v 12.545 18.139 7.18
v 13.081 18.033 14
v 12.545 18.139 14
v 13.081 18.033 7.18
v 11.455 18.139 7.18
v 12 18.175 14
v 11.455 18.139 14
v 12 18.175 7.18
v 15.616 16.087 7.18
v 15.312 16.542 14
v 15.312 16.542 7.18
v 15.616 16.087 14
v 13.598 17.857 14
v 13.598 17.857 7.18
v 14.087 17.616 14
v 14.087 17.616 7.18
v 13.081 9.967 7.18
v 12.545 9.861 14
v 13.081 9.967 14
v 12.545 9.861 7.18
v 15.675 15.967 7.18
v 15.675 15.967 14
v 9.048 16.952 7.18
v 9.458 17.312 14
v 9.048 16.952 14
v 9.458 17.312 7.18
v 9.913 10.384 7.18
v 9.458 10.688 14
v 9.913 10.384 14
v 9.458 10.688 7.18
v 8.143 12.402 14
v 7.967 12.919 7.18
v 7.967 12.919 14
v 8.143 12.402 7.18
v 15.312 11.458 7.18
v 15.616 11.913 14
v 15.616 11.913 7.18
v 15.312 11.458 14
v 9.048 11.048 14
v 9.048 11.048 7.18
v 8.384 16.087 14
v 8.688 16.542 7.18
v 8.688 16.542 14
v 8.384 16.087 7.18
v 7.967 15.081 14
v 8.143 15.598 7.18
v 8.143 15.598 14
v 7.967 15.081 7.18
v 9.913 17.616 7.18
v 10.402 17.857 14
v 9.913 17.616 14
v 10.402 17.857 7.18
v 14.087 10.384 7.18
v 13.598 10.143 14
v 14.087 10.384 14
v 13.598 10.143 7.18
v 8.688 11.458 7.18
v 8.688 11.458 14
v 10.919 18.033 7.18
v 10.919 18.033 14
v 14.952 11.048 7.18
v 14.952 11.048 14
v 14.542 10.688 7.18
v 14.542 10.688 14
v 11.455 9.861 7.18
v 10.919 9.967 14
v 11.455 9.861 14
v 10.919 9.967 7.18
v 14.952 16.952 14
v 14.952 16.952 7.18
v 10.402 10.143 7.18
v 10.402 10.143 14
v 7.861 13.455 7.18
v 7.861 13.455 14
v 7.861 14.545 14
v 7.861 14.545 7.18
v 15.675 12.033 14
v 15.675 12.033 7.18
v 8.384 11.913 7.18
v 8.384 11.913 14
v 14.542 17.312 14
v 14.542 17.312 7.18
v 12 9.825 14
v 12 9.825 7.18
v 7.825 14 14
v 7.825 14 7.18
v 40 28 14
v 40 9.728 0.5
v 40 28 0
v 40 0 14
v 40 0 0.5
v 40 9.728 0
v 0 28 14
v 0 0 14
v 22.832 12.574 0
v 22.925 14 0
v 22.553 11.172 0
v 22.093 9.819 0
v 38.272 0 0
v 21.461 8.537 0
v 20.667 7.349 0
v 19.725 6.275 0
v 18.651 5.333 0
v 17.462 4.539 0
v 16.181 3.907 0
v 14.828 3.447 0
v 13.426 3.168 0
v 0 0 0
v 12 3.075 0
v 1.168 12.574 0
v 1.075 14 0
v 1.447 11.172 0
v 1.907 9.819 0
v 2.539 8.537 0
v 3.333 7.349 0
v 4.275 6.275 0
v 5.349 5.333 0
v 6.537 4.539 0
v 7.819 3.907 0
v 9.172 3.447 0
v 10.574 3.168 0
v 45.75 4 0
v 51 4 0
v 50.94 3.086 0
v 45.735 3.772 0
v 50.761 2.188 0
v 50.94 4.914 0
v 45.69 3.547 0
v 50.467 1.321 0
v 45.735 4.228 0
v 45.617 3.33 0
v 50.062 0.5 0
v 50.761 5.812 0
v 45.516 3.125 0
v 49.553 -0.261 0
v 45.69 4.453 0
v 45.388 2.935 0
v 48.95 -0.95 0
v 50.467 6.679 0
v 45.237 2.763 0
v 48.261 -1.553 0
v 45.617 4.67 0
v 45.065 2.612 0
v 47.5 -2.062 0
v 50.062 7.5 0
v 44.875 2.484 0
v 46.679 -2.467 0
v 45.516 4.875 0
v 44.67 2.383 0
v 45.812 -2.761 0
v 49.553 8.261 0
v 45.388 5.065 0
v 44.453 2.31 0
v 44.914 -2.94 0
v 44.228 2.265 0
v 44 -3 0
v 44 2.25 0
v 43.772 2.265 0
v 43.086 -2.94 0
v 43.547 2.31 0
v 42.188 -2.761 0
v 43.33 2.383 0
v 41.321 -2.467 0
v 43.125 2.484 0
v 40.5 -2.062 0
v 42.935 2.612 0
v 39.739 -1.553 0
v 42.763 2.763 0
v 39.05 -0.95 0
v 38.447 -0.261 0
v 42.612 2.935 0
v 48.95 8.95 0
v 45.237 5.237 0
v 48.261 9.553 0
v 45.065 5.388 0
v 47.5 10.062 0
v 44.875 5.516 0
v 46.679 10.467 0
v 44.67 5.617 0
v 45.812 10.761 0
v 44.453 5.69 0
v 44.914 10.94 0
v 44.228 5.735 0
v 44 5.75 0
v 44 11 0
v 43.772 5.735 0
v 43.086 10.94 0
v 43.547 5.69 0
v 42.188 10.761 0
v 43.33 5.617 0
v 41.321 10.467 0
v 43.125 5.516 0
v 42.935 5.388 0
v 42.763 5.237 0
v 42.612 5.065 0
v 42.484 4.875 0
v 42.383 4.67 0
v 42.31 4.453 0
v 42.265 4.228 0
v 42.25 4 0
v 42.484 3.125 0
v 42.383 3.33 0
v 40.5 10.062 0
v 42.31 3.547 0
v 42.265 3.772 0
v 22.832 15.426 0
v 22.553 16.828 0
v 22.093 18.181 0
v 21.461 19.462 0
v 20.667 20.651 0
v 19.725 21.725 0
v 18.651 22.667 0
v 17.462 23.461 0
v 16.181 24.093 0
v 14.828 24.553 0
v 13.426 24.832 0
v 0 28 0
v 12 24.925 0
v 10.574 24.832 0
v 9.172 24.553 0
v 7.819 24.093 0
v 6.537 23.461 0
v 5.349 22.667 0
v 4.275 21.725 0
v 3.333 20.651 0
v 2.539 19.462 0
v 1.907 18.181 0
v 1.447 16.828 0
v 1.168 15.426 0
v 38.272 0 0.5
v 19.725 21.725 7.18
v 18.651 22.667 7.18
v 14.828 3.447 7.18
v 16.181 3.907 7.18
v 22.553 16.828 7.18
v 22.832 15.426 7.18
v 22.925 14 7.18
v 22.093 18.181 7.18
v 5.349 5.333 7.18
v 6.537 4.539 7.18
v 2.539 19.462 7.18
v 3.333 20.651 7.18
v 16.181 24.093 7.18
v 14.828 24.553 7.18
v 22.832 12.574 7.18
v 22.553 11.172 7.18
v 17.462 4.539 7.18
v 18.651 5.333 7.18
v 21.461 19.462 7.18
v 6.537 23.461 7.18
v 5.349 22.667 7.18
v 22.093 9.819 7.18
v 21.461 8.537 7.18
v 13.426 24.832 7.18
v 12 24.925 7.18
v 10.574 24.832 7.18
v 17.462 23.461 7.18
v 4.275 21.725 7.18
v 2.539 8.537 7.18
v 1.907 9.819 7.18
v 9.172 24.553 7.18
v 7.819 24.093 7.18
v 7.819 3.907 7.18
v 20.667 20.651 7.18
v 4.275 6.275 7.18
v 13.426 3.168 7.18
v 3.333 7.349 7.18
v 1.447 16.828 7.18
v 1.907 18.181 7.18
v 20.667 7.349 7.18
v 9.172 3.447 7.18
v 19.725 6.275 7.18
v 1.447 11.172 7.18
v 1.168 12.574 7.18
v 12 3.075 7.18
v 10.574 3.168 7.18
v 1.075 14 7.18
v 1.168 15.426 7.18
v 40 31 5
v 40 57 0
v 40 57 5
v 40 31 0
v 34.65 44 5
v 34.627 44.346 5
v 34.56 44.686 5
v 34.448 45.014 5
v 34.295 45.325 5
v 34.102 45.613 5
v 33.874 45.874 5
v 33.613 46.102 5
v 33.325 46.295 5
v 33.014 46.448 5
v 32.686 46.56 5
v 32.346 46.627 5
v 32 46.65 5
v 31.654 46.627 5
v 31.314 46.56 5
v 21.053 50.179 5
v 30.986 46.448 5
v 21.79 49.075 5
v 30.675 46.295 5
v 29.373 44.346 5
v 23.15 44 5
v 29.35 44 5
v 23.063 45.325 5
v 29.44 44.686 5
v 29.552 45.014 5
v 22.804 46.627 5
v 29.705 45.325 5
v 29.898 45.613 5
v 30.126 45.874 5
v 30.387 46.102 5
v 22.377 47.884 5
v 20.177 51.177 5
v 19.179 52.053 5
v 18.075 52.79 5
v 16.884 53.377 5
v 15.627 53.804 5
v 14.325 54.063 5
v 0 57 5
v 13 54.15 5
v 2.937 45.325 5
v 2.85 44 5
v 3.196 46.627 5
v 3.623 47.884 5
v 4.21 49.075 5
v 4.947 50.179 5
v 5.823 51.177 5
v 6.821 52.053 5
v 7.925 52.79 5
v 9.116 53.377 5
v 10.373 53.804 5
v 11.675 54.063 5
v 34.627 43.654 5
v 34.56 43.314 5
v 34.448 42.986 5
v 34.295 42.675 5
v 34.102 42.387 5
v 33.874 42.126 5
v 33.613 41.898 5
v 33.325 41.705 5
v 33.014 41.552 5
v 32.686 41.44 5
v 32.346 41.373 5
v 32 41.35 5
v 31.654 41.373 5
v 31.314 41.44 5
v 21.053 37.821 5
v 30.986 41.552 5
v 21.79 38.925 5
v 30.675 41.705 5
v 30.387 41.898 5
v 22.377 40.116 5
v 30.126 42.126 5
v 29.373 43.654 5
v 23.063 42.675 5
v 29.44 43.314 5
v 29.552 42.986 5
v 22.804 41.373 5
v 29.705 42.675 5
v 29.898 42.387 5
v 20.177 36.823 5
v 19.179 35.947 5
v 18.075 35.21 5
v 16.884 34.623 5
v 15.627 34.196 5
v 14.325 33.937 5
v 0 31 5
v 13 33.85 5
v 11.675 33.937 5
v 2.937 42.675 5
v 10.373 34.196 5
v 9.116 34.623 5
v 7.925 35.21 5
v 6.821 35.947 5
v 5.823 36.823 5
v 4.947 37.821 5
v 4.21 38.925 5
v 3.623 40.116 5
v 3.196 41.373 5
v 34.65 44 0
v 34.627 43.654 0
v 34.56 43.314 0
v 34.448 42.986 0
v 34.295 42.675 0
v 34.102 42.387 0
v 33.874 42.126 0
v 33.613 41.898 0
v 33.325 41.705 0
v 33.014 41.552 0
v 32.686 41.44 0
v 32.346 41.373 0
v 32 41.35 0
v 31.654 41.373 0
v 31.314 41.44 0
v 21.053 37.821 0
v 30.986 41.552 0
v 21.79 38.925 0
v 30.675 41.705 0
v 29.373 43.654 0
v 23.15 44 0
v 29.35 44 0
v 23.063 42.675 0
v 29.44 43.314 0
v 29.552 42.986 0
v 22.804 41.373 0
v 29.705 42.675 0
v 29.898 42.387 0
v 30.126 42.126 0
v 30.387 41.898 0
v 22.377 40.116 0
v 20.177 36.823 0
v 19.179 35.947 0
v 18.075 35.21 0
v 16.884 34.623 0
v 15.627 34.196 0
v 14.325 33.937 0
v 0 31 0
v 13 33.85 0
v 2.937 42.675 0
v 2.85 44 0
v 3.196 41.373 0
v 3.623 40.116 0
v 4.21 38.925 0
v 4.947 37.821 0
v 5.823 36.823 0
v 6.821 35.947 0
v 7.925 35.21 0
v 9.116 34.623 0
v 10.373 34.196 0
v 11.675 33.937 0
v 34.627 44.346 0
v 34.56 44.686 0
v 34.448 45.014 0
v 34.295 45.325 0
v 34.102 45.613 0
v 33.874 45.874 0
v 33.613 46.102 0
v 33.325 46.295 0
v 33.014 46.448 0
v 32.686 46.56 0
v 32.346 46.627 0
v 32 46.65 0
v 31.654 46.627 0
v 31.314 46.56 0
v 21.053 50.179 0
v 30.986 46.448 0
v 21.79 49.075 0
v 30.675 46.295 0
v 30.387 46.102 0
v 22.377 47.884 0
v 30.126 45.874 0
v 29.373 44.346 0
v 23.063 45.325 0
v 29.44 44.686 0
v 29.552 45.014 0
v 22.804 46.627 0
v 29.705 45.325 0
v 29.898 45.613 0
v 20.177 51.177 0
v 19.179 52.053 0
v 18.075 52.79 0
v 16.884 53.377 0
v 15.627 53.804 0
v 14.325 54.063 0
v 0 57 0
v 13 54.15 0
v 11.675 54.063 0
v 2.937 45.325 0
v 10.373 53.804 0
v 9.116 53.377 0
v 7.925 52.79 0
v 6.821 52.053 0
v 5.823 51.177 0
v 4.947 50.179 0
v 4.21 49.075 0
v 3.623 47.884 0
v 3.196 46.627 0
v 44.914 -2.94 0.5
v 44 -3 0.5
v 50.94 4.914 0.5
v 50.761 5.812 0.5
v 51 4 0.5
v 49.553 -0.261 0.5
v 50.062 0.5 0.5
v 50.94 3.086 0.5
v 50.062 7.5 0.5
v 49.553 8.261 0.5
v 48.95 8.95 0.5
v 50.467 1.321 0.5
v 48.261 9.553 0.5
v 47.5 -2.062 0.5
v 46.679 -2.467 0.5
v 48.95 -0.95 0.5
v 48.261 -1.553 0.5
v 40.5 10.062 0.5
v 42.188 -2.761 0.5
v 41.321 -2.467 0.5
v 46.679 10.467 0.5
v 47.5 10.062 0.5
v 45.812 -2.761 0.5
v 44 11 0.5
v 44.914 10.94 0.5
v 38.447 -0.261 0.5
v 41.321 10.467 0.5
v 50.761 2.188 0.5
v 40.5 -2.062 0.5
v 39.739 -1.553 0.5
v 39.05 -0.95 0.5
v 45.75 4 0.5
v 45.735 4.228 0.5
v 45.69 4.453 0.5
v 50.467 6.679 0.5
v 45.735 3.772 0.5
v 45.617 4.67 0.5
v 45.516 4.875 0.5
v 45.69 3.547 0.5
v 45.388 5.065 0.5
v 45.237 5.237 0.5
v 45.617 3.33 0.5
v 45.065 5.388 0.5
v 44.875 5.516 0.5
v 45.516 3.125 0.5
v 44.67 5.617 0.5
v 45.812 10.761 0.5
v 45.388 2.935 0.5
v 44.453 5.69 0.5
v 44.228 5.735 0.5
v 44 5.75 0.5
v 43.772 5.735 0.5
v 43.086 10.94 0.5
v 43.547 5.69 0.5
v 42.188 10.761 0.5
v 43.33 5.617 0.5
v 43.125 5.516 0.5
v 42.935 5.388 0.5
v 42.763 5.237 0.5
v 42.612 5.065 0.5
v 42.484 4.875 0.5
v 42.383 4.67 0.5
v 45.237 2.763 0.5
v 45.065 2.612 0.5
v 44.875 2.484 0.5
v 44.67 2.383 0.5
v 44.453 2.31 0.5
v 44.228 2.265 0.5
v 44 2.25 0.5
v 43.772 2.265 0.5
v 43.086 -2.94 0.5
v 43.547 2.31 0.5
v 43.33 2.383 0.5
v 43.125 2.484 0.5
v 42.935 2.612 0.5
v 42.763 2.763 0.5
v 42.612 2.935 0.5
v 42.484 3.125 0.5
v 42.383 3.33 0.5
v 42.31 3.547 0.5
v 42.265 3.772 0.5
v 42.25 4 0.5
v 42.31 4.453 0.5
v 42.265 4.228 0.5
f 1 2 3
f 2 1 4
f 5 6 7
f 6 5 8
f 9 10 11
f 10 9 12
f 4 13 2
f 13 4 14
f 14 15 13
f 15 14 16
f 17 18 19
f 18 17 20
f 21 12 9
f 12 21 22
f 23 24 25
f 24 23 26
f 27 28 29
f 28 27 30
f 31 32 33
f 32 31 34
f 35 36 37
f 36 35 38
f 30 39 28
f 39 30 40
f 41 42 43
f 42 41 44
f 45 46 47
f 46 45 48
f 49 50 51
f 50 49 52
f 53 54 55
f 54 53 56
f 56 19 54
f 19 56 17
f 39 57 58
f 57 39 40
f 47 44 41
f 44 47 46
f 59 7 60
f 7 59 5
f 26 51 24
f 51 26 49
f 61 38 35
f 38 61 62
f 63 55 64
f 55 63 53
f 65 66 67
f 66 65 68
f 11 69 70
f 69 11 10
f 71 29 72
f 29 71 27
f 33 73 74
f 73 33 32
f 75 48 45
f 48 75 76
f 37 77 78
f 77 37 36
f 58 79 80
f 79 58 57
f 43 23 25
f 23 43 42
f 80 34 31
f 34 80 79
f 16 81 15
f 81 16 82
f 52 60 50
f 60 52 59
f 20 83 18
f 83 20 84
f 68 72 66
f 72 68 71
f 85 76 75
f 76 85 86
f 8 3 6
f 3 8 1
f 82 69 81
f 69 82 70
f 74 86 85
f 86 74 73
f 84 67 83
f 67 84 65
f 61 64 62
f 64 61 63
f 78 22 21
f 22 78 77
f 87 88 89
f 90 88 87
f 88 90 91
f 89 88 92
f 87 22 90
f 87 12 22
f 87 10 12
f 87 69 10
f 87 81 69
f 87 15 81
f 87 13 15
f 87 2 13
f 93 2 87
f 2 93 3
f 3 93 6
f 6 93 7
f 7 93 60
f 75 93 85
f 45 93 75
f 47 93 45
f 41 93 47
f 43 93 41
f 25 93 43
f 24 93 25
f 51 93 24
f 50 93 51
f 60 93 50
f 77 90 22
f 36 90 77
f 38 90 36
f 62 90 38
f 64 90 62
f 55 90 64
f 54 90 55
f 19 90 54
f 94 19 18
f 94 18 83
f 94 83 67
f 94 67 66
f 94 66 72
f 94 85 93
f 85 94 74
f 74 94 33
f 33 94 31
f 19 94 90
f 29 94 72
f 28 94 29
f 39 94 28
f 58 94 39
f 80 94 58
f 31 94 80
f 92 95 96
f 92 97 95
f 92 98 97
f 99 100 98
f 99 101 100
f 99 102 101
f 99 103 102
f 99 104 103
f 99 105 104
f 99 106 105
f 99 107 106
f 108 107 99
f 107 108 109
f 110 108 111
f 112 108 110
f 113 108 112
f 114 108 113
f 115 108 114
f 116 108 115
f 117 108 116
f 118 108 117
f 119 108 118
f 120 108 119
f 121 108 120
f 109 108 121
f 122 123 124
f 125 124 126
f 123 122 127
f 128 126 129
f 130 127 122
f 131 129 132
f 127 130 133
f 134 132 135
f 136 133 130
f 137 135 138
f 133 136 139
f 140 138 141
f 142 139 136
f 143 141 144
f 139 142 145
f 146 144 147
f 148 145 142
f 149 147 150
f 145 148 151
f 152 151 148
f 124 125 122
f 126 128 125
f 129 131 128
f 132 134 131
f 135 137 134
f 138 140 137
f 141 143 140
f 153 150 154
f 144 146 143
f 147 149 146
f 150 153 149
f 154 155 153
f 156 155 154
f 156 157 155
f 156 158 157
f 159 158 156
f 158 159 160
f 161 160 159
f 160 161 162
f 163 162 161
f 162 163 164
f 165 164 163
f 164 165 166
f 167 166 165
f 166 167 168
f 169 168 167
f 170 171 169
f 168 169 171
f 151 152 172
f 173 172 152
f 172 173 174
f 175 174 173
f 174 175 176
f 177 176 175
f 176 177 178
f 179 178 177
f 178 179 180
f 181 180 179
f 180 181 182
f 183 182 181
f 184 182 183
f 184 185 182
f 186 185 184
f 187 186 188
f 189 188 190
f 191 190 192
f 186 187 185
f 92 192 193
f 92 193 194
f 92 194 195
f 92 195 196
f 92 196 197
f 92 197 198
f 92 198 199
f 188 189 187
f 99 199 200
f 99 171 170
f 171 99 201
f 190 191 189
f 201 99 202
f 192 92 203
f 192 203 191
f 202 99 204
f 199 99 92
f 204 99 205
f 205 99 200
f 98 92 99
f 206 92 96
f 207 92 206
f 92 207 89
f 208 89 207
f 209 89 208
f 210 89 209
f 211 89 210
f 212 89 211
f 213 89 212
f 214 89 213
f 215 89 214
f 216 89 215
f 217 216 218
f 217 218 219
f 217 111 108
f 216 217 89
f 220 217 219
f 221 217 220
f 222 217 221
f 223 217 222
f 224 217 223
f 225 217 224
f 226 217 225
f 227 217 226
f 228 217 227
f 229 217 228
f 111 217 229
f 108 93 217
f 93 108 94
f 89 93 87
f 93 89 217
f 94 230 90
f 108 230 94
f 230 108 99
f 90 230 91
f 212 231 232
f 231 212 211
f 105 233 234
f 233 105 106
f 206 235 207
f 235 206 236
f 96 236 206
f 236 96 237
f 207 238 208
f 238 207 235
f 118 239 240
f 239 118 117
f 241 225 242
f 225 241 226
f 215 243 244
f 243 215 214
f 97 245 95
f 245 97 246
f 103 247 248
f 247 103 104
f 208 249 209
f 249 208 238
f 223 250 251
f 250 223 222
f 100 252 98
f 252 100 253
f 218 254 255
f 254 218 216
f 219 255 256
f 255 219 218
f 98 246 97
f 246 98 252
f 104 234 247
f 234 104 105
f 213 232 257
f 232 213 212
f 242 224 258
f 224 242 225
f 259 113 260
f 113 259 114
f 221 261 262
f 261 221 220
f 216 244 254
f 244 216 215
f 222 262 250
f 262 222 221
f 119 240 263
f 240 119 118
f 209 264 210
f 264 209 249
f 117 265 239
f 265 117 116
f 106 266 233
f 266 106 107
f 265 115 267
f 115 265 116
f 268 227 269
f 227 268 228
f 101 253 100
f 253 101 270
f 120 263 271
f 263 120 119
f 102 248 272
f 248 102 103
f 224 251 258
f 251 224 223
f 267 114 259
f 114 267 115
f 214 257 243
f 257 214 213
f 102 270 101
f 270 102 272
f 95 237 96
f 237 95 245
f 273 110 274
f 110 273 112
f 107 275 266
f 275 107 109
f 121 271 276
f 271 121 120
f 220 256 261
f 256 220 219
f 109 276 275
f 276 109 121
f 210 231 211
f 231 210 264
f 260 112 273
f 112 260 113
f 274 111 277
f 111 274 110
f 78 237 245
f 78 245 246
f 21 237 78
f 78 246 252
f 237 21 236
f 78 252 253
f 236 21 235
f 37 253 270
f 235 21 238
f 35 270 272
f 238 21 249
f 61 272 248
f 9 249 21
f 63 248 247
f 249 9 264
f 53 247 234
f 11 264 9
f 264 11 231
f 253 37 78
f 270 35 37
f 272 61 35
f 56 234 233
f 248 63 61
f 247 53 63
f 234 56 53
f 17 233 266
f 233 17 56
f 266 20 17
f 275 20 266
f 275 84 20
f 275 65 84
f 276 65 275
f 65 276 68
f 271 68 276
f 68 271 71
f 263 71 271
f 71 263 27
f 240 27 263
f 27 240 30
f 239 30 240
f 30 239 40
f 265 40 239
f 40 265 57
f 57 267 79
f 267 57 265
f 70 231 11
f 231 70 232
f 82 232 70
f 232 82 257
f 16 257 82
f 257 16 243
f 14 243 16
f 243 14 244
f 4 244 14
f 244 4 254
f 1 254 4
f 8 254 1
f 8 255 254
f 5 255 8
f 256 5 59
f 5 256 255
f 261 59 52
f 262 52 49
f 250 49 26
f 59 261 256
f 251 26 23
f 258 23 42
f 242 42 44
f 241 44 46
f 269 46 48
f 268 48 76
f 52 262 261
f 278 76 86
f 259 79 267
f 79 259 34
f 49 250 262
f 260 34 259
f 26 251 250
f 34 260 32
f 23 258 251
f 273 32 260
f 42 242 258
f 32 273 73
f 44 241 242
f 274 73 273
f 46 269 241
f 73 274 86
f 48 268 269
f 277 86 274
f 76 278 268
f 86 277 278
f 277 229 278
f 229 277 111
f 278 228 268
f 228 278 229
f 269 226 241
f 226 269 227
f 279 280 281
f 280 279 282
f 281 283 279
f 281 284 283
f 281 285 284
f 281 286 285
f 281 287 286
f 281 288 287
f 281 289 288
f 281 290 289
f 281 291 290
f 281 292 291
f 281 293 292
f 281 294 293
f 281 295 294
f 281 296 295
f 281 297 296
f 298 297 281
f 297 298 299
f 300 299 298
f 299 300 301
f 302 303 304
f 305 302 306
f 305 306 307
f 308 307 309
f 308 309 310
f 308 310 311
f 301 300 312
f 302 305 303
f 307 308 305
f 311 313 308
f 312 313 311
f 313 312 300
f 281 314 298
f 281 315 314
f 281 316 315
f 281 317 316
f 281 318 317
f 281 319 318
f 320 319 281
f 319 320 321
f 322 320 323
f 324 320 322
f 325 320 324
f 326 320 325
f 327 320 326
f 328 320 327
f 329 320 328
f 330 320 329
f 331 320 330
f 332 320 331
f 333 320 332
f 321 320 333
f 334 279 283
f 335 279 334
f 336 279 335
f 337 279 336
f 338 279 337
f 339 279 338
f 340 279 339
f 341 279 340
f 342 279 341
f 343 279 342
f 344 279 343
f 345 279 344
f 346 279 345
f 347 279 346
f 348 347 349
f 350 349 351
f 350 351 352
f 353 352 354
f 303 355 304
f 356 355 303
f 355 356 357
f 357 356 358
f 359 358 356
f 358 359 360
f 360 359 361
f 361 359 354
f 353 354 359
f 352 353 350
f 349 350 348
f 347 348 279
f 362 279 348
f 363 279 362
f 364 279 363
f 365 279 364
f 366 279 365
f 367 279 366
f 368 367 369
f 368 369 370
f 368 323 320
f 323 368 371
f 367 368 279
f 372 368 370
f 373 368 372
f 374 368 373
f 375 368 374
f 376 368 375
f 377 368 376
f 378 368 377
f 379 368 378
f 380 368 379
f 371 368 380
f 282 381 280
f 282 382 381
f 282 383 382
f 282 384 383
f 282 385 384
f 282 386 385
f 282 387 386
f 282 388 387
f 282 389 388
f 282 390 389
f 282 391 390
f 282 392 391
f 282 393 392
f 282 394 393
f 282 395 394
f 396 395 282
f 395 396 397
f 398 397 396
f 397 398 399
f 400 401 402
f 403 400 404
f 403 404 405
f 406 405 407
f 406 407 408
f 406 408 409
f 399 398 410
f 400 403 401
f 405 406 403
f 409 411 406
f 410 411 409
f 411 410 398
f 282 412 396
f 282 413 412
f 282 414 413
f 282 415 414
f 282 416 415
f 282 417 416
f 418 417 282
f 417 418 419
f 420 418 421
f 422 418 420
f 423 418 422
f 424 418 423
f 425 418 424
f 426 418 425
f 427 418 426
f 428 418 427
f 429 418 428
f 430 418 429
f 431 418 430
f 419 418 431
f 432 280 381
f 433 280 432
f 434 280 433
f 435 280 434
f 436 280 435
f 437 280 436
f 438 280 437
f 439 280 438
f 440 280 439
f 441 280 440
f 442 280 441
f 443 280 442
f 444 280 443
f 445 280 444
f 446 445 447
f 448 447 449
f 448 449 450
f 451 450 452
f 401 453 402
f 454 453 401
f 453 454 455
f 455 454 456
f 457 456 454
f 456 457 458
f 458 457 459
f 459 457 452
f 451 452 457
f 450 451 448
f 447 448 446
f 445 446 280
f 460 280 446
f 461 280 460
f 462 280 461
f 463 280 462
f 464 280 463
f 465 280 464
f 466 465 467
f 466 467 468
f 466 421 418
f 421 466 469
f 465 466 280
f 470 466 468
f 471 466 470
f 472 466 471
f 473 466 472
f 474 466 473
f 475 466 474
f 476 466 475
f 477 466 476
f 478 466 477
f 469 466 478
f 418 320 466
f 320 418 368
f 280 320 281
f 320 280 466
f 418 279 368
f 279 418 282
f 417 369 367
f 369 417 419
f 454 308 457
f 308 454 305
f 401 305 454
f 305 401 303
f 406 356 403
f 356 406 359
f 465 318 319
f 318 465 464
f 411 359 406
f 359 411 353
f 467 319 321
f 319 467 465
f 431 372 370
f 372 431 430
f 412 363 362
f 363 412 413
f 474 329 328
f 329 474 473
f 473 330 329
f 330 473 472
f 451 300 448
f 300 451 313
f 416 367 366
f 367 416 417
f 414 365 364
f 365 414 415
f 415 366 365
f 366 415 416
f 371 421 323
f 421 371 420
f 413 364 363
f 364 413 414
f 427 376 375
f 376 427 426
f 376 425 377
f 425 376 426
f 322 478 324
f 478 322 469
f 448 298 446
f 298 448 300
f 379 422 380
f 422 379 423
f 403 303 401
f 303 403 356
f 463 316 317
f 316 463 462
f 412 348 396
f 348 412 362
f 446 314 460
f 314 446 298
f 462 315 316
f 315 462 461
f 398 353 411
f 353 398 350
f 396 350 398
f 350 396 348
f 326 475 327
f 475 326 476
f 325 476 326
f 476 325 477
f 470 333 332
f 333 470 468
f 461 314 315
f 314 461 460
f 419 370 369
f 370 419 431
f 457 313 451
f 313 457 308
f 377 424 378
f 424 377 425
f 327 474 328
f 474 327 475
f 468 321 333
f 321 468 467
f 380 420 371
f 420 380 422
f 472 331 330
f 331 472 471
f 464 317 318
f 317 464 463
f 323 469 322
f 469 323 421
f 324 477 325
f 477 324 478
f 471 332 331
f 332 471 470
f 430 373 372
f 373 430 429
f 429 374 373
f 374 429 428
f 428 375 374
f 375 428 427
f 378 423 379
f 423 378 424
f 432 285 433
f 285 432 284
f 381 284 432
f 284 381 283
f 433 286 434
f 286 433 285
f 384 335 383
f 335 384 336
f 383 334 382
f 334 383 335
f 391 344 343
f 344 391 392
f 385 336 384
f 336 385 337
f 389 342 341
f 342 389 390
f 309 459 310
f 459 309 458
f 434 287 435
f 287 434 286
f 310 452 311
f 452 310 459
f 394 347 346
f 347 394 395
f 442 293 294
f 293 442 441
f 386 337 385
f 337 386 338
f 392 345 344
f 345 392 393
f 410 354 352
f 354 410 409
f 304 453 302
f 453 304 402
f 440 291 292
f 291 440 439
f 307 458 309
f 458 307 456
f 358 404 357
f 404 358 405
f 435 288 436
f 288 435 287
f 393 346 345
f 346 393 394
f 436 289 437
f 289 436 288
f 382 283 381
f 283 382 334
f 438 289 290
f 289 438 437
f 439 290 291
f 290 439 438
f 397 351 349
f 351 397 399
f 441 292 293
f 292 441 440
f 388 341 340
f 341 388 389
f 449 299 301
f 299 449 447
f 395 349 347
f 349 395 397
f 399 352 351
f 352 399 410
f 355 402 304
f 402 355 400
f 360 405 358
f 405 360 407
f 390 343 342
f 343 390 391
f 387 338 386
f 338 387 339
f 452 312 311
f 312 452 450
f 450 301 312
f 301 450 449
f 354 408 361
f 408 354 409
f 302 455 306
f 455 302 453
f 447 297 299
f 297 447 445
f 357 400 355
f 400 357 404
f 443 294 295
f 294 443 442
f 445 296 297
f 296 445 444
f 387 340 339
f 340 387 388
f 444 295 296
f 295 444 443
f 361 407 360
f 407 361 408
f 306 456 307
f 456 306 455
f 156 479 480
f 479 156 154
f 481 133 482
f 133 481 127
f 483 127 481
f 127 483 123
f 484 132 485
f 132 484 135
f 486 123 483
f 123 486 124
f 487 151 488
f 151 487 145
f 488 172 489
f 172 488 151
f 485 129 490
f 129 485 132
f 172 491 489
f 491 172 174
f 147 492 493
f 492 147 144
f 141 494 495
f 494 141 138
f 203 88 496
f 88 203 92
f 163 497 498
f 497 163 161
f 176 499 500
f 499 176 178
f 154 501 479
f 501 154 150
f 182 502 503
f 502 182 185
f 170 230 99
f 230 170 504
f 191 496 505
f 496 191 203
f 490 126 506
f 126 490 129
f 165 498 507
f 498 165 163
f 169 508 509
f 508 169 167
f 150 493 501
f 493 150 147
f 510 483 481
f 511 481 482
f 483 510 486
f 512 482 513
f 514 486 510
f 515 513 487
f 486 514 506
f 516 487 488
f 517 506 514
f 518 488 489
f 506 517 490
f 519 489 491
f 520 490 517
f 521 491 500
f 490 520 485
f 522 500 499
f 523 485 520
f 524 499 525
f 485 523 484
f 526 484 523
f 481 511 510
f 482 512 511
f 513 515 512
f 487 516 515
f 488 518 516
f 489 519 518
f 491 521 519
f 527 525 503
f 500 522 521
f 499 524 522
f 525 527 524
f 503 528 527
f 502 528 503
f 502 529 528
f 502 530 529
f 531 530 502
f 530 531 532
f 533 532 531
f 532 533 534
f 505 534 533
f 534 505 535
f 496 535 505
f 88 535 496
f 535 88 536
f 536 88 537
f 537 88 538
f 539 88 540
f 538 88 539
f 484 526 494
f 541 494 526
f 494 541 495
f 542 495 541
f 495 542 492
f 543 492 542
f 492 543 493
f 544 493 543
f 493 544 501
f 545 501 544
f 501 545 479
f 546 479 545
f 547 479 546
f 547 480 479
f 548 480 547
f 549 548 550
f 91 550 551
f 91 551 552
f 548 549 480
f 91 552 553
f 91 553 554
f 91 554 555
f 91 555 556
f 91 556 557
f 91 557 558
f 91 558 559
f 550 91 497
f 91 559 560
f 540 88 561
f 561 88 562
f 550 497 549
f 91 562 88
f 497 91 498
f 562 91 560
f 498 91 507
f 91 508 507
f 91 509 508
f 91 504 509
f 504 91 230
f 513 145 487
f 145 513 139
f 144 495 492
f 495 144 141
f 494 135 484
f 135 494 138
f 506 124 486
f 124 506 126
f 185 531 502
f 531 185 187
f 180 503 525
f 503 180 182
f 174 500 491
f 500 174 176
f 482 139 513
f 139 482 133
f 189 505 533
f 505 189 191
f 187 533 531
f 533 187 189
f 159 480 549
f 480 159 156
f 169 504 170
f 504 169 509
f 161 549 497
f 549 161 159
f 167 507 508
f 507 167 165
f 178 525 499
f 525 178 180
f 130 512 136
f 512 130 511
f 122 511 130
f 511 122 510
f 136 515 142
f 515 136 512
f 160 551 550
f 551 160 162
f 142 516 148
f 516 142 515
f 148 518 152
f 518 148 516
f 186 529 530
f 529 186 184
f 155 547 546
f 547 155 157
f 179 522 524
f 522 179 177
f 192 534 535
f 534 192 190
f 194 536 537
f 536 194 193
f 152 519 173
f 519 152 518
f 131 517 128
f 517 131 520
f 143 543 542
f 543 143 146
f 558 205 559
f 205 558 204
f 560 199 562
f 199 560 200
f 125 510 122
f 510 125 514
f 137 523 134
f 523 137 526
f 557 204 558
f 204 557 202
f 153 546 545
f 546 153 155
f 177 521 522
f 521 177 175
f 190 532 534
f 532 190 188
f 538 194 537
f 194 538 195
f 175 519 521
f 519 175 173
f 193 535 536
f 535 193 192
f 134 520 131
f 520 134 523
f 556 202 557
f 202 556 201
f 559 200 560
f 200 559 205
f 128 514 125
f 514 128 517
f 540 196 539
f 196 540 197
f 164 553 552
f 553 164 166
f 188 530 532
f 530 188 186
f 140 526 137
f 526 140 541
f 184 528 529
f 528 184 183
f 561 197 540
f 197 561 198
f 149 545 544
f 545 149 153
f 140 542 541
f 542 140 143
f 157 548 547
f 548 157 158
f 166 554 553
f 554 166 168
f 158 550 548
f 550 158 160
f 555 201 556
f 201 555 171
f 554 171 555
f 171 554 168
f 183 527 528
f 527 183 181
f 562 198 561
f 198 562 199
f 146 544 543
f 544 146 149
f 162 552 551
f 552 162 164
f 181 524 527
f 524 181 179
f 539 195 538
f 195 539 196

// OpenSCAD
// file: parameters.scad
// =============================================================================
// Gen-BY — nightly 2026-10-11 (physics_scorer, honest magpylib watts)
// Stator-only upgrade for an existing Gen-BU: the R66 rotors and Ø158 steel are reused unchanged, and a new 12-bobbin stator with thinner 7.2 mm copper (gap 10.70 → 9.80 mm) and longer r48–84 bobbins (more copper outside the magnet ring) replaces the old one, together with a shorter gap sleeve and wider-spaced frame rods. It is the modular swap path: no new magnets or steel.
// Clocking 0 deg (magnets N facing S) + D-flat keyed bore + index notch + flip-symmetric hole map.
// Windable 2-piece bobbin; turns = physics_scorer turns_fit; copper only between flanges.
// Steel back-iron: 2× Ø158 × 4.76 mm (3/16") mild-steel discs (steel_backiron_disc.dxf); magnets sit ON the steel
// (through-pockets) -> score with --back-iron. Night 2026-10-11.
// =============================================================================
topology            = "dual_rotor";

// --- Wire / winding (physics_scorer winding-fit) -------------------------------
wire_awg            = 26;
wire_od             = 0.45;     // insulated OD mm (bare 0.405)
fill_realistic      = 0.65;     // insulated-wire area / window (DENSE layered wind with a jig; scorer cap 0.65)
turns               = 410;       // = physics_scorer turns_fit (do NOT raise)
coil_former_type    = "bobbin";
coil_core_inset     = 13.95;     // radial copper build: hub = copper boundary inset by this
wind_build_axial    = 0.0;      // nothing proud of the flanges
wind_build_radial   = 0.0;

// --- Bobbin (base + lid) ---------------------------------------------------------
coil_id_r           = 48.00;    // copper boundary sector
coil_od_r           = 84.00;
span_deg            = 26.06;    // = pitch - 2*asin((wall+0.85)/coil_id_r) -> >=1.2 mm stator web
former_web          = 7.20;     // copper height between flanges (TALL copper: steel keeps Bz up)
flange_t            = 0.80;     // >= 0.8 mm FDM wall rule (tall winds push on the flanges)
wall                = 0.80;     // flange lip beyond copper
former_bare_h       = former_web + 2 * flange_t;
coil_envelope_h     = former_bare_h + 2 * wind_build_axial;
tab_w               = 7.0;
tab_len             = 7.0;
tab_h               = former_bare_h / 2;
pin_d               = 1.9;      // 1.75 mm filament locating pin
coil_mount_r        = coil_od_r + 0.2 + 4.0;
lead_y              = 1.6;
lead_slot_w         = 0.9;
lead_groove_d       = 0.6;

// --- Gap -------------------------------------------------------------------------
run_clear           = 0.50;     // rotor face -> flange
gap_spacer_h        = run_clear + wind_build_axial;
m2m                 = coil_envelope_h + 2 * run_clear;   // rotor face to rotor face (= gap_sleeve length)

// --- Stator ----------------------------------------------------------------------
coil_stations       = 12;
bay_clear           = 0.25;
stator_thick        = former_bare_h;                        // bobbins flush both faces
stator_od           = 186.0;
shaft_clear_stator  = 14.0;     // stator is static; gap sleeve OD 12 spins inside

// --- Rotor(s) --------------------------------------------------------------------
magnet_Br           = 1.43;     // N52
magnet_d_large      = 20.0;
magnet_h_large      = 5.0;      // one O20x5 per pocket
magnet_h_small      = 5.0;      // unused: no O5 pockets in this kit
halbach_magnetisation = "none";  // NO O5 assist magnets in this kit (scan: they lower the 4-pole score)
rotor_b_same_axis   = true;     // same-index magnets share one axis: N faces S across the gap
large_pocket_d      = 20.3;
small_pocket_d      = 5.3;
pocket_h            = 5.00;     // THROUGH the carrier: magnet back face sits on the steel disc (FLUSH seat: carrier = magnet height, magnet face level with the rotor face)
large_n             = 8;
R_large             = 66.0;
small_r_list        = [];       // no O5 pockets
carrier_od          = 158.0;
carrier_thick       = pocket_h;
hub_h               = 12.0;     // > steel_t + insert: radial set-screw clears the steel
hub_od              = 24.0;     // slim hub so the M4 brace rods fit at R~18 inside the coil ring
hub_insert_d        = 4.0;      // M3 heat-set insert, radial, bears on the D-flat
rotor_b_offset_deg  = 0.0;      // CLOCKING: magnets directly opposite
shaft_key           = "dflat";
dflat_depth         = 0.5;      // 8 mm shaft with 0.5 mm flat (7.5 across flat)
index_notch_d       = 3.0;

// --- Steel back-iron (buyable laser-cut) -------------------------------------------
steel_t             = 4.76;      // mild steel thickness (image method ignores it; sized from steel_flux.py so the return path stays well below saturation)
steel_center_hole   = 26.0;     // slips over the rotor hub (OD 24)
steel_od            = carrier_od;   // steel disc OD = rotor carrier OD

// --- Modular MAX interface ----------------------------------------------------------
shaft_bore          = 8.35;
dflat_x             = 4.0 - dflat_depth + (shaft_bore - 8.0) / 2;
bearing_d           = 21.85;
bearing_h           = 7.2;
m3_clear            = 3.5;
bolt_r_inner        = 30.0;     // M3 steel-disc clamp bolts (inside the magnet ring)
bolt_n_inner        = 4;
bolt_inner_angles   = [0, 90, 180, 270];
bolt_r_outer        = 44.0;     // second M3 steel-disc clamp ring
bolt_outer_angles   = [67.5, 112.5, 247.5, 292.5];
flange_bolt_r       = 88.0;     // frame rods: OUTSIDE the rotor OD (rotors spin inside them)
flange_bolt_n       = 4;
flange_bolt_offset  = 45.00;    // between coil stations -> never cuts a lead groove/tab
brace_r             = 18.0;
brace_d             = 4.3;      // temporary M4 jack rods (assembly only)
brace_n             = 4;
brace_angles        = [45, 135, 225, 315];          // flip-symmetric

spacer_pad_od       = 14.0;
spacer_pad_id       = m3_clear;
endbell_od          = 186.0;
endbell_thick       = 8.0;
endbell_shaft_clear = 10.0;
collar_h            = 10.0;
standoff_od         = 9.0;
frame_standoff_h    = run_clear + carrier_thick + hub_h + collar_h + 2.0;
sleeve_od           = 12.0;
plate_max_mm        = 410;

$fn = 64;
// main file
// Gen-BY — fit coupon: O20/O5 THROUGH pockets at carrier thickness (test on a steel offcut), 608 seat,
// D-flat bore, gap shim, and one bobbin-bay slice (bobbin footprint + bay_clear) to test former fit.
include <parameters.scad>;
$fn = 48;
// D-flat keyed bore: flat faces +X (angle 0 = magnet pocket 0 = index notch)
module dflat_bore(h) {
    intersection() {
        cylinder(d=shaft_bore, h=h);
        translate([-shaft_bore, -shaft_bore, 0]) cube([shaft_bore + dflat_x, 2*shaft_bore, h]);
    }
}
module sector_2d(r_in, r_out, ang) {
    polygon([
        for (a = [-ang/2 : ang/24 : ang/2]) [r_in*cos(a), r_in*sin(a)],
        for (a = [ang/2 : -ang/24 : -ang/2]) [r_out*cos(a), r_out*sin(a)]
    ]);
}
module footprint_2d() { offset(r=wall) sector_2d(coil_id_r, coil_od_r, span_deg); }
module hub_2d()       { offset(delta=-coil_core_inset) sector_2d(coil_id_r, coil_od_r, span_deg); }

block_w = 40; block_d = 28; block_h = 14;
difference() {
    cube([block_w, block_d, block_h]);
    translate([12, block_d/2, -0.02]) cylinder(d=bearing_d, h=bearing_h);
    translate([12, block_d/2, -0.1]) dflat_bore(block_h + 1);
}
translate([0, block_d + 3, 0]) difference() {
    cube([40, 26, carrier_thick]);
    translate([13, 13, -0.1]) cylinder(d=large_pocket_d, h=carrier_thick + 0.2);
    translate([32, 13, -0.1]) cylinder(d=small_pocket_d, h=carrier_thick + 0.2);
}
translate([block_w + 4, 4, 0])
    difference() {
        cylinder(d=spacer_pad_od, h=gap_spacer_h);
        translate([0, 0, -0.1]) cylinder(d=spacer_pad_id, h=gap_spacer_h + 0.2);
    }
